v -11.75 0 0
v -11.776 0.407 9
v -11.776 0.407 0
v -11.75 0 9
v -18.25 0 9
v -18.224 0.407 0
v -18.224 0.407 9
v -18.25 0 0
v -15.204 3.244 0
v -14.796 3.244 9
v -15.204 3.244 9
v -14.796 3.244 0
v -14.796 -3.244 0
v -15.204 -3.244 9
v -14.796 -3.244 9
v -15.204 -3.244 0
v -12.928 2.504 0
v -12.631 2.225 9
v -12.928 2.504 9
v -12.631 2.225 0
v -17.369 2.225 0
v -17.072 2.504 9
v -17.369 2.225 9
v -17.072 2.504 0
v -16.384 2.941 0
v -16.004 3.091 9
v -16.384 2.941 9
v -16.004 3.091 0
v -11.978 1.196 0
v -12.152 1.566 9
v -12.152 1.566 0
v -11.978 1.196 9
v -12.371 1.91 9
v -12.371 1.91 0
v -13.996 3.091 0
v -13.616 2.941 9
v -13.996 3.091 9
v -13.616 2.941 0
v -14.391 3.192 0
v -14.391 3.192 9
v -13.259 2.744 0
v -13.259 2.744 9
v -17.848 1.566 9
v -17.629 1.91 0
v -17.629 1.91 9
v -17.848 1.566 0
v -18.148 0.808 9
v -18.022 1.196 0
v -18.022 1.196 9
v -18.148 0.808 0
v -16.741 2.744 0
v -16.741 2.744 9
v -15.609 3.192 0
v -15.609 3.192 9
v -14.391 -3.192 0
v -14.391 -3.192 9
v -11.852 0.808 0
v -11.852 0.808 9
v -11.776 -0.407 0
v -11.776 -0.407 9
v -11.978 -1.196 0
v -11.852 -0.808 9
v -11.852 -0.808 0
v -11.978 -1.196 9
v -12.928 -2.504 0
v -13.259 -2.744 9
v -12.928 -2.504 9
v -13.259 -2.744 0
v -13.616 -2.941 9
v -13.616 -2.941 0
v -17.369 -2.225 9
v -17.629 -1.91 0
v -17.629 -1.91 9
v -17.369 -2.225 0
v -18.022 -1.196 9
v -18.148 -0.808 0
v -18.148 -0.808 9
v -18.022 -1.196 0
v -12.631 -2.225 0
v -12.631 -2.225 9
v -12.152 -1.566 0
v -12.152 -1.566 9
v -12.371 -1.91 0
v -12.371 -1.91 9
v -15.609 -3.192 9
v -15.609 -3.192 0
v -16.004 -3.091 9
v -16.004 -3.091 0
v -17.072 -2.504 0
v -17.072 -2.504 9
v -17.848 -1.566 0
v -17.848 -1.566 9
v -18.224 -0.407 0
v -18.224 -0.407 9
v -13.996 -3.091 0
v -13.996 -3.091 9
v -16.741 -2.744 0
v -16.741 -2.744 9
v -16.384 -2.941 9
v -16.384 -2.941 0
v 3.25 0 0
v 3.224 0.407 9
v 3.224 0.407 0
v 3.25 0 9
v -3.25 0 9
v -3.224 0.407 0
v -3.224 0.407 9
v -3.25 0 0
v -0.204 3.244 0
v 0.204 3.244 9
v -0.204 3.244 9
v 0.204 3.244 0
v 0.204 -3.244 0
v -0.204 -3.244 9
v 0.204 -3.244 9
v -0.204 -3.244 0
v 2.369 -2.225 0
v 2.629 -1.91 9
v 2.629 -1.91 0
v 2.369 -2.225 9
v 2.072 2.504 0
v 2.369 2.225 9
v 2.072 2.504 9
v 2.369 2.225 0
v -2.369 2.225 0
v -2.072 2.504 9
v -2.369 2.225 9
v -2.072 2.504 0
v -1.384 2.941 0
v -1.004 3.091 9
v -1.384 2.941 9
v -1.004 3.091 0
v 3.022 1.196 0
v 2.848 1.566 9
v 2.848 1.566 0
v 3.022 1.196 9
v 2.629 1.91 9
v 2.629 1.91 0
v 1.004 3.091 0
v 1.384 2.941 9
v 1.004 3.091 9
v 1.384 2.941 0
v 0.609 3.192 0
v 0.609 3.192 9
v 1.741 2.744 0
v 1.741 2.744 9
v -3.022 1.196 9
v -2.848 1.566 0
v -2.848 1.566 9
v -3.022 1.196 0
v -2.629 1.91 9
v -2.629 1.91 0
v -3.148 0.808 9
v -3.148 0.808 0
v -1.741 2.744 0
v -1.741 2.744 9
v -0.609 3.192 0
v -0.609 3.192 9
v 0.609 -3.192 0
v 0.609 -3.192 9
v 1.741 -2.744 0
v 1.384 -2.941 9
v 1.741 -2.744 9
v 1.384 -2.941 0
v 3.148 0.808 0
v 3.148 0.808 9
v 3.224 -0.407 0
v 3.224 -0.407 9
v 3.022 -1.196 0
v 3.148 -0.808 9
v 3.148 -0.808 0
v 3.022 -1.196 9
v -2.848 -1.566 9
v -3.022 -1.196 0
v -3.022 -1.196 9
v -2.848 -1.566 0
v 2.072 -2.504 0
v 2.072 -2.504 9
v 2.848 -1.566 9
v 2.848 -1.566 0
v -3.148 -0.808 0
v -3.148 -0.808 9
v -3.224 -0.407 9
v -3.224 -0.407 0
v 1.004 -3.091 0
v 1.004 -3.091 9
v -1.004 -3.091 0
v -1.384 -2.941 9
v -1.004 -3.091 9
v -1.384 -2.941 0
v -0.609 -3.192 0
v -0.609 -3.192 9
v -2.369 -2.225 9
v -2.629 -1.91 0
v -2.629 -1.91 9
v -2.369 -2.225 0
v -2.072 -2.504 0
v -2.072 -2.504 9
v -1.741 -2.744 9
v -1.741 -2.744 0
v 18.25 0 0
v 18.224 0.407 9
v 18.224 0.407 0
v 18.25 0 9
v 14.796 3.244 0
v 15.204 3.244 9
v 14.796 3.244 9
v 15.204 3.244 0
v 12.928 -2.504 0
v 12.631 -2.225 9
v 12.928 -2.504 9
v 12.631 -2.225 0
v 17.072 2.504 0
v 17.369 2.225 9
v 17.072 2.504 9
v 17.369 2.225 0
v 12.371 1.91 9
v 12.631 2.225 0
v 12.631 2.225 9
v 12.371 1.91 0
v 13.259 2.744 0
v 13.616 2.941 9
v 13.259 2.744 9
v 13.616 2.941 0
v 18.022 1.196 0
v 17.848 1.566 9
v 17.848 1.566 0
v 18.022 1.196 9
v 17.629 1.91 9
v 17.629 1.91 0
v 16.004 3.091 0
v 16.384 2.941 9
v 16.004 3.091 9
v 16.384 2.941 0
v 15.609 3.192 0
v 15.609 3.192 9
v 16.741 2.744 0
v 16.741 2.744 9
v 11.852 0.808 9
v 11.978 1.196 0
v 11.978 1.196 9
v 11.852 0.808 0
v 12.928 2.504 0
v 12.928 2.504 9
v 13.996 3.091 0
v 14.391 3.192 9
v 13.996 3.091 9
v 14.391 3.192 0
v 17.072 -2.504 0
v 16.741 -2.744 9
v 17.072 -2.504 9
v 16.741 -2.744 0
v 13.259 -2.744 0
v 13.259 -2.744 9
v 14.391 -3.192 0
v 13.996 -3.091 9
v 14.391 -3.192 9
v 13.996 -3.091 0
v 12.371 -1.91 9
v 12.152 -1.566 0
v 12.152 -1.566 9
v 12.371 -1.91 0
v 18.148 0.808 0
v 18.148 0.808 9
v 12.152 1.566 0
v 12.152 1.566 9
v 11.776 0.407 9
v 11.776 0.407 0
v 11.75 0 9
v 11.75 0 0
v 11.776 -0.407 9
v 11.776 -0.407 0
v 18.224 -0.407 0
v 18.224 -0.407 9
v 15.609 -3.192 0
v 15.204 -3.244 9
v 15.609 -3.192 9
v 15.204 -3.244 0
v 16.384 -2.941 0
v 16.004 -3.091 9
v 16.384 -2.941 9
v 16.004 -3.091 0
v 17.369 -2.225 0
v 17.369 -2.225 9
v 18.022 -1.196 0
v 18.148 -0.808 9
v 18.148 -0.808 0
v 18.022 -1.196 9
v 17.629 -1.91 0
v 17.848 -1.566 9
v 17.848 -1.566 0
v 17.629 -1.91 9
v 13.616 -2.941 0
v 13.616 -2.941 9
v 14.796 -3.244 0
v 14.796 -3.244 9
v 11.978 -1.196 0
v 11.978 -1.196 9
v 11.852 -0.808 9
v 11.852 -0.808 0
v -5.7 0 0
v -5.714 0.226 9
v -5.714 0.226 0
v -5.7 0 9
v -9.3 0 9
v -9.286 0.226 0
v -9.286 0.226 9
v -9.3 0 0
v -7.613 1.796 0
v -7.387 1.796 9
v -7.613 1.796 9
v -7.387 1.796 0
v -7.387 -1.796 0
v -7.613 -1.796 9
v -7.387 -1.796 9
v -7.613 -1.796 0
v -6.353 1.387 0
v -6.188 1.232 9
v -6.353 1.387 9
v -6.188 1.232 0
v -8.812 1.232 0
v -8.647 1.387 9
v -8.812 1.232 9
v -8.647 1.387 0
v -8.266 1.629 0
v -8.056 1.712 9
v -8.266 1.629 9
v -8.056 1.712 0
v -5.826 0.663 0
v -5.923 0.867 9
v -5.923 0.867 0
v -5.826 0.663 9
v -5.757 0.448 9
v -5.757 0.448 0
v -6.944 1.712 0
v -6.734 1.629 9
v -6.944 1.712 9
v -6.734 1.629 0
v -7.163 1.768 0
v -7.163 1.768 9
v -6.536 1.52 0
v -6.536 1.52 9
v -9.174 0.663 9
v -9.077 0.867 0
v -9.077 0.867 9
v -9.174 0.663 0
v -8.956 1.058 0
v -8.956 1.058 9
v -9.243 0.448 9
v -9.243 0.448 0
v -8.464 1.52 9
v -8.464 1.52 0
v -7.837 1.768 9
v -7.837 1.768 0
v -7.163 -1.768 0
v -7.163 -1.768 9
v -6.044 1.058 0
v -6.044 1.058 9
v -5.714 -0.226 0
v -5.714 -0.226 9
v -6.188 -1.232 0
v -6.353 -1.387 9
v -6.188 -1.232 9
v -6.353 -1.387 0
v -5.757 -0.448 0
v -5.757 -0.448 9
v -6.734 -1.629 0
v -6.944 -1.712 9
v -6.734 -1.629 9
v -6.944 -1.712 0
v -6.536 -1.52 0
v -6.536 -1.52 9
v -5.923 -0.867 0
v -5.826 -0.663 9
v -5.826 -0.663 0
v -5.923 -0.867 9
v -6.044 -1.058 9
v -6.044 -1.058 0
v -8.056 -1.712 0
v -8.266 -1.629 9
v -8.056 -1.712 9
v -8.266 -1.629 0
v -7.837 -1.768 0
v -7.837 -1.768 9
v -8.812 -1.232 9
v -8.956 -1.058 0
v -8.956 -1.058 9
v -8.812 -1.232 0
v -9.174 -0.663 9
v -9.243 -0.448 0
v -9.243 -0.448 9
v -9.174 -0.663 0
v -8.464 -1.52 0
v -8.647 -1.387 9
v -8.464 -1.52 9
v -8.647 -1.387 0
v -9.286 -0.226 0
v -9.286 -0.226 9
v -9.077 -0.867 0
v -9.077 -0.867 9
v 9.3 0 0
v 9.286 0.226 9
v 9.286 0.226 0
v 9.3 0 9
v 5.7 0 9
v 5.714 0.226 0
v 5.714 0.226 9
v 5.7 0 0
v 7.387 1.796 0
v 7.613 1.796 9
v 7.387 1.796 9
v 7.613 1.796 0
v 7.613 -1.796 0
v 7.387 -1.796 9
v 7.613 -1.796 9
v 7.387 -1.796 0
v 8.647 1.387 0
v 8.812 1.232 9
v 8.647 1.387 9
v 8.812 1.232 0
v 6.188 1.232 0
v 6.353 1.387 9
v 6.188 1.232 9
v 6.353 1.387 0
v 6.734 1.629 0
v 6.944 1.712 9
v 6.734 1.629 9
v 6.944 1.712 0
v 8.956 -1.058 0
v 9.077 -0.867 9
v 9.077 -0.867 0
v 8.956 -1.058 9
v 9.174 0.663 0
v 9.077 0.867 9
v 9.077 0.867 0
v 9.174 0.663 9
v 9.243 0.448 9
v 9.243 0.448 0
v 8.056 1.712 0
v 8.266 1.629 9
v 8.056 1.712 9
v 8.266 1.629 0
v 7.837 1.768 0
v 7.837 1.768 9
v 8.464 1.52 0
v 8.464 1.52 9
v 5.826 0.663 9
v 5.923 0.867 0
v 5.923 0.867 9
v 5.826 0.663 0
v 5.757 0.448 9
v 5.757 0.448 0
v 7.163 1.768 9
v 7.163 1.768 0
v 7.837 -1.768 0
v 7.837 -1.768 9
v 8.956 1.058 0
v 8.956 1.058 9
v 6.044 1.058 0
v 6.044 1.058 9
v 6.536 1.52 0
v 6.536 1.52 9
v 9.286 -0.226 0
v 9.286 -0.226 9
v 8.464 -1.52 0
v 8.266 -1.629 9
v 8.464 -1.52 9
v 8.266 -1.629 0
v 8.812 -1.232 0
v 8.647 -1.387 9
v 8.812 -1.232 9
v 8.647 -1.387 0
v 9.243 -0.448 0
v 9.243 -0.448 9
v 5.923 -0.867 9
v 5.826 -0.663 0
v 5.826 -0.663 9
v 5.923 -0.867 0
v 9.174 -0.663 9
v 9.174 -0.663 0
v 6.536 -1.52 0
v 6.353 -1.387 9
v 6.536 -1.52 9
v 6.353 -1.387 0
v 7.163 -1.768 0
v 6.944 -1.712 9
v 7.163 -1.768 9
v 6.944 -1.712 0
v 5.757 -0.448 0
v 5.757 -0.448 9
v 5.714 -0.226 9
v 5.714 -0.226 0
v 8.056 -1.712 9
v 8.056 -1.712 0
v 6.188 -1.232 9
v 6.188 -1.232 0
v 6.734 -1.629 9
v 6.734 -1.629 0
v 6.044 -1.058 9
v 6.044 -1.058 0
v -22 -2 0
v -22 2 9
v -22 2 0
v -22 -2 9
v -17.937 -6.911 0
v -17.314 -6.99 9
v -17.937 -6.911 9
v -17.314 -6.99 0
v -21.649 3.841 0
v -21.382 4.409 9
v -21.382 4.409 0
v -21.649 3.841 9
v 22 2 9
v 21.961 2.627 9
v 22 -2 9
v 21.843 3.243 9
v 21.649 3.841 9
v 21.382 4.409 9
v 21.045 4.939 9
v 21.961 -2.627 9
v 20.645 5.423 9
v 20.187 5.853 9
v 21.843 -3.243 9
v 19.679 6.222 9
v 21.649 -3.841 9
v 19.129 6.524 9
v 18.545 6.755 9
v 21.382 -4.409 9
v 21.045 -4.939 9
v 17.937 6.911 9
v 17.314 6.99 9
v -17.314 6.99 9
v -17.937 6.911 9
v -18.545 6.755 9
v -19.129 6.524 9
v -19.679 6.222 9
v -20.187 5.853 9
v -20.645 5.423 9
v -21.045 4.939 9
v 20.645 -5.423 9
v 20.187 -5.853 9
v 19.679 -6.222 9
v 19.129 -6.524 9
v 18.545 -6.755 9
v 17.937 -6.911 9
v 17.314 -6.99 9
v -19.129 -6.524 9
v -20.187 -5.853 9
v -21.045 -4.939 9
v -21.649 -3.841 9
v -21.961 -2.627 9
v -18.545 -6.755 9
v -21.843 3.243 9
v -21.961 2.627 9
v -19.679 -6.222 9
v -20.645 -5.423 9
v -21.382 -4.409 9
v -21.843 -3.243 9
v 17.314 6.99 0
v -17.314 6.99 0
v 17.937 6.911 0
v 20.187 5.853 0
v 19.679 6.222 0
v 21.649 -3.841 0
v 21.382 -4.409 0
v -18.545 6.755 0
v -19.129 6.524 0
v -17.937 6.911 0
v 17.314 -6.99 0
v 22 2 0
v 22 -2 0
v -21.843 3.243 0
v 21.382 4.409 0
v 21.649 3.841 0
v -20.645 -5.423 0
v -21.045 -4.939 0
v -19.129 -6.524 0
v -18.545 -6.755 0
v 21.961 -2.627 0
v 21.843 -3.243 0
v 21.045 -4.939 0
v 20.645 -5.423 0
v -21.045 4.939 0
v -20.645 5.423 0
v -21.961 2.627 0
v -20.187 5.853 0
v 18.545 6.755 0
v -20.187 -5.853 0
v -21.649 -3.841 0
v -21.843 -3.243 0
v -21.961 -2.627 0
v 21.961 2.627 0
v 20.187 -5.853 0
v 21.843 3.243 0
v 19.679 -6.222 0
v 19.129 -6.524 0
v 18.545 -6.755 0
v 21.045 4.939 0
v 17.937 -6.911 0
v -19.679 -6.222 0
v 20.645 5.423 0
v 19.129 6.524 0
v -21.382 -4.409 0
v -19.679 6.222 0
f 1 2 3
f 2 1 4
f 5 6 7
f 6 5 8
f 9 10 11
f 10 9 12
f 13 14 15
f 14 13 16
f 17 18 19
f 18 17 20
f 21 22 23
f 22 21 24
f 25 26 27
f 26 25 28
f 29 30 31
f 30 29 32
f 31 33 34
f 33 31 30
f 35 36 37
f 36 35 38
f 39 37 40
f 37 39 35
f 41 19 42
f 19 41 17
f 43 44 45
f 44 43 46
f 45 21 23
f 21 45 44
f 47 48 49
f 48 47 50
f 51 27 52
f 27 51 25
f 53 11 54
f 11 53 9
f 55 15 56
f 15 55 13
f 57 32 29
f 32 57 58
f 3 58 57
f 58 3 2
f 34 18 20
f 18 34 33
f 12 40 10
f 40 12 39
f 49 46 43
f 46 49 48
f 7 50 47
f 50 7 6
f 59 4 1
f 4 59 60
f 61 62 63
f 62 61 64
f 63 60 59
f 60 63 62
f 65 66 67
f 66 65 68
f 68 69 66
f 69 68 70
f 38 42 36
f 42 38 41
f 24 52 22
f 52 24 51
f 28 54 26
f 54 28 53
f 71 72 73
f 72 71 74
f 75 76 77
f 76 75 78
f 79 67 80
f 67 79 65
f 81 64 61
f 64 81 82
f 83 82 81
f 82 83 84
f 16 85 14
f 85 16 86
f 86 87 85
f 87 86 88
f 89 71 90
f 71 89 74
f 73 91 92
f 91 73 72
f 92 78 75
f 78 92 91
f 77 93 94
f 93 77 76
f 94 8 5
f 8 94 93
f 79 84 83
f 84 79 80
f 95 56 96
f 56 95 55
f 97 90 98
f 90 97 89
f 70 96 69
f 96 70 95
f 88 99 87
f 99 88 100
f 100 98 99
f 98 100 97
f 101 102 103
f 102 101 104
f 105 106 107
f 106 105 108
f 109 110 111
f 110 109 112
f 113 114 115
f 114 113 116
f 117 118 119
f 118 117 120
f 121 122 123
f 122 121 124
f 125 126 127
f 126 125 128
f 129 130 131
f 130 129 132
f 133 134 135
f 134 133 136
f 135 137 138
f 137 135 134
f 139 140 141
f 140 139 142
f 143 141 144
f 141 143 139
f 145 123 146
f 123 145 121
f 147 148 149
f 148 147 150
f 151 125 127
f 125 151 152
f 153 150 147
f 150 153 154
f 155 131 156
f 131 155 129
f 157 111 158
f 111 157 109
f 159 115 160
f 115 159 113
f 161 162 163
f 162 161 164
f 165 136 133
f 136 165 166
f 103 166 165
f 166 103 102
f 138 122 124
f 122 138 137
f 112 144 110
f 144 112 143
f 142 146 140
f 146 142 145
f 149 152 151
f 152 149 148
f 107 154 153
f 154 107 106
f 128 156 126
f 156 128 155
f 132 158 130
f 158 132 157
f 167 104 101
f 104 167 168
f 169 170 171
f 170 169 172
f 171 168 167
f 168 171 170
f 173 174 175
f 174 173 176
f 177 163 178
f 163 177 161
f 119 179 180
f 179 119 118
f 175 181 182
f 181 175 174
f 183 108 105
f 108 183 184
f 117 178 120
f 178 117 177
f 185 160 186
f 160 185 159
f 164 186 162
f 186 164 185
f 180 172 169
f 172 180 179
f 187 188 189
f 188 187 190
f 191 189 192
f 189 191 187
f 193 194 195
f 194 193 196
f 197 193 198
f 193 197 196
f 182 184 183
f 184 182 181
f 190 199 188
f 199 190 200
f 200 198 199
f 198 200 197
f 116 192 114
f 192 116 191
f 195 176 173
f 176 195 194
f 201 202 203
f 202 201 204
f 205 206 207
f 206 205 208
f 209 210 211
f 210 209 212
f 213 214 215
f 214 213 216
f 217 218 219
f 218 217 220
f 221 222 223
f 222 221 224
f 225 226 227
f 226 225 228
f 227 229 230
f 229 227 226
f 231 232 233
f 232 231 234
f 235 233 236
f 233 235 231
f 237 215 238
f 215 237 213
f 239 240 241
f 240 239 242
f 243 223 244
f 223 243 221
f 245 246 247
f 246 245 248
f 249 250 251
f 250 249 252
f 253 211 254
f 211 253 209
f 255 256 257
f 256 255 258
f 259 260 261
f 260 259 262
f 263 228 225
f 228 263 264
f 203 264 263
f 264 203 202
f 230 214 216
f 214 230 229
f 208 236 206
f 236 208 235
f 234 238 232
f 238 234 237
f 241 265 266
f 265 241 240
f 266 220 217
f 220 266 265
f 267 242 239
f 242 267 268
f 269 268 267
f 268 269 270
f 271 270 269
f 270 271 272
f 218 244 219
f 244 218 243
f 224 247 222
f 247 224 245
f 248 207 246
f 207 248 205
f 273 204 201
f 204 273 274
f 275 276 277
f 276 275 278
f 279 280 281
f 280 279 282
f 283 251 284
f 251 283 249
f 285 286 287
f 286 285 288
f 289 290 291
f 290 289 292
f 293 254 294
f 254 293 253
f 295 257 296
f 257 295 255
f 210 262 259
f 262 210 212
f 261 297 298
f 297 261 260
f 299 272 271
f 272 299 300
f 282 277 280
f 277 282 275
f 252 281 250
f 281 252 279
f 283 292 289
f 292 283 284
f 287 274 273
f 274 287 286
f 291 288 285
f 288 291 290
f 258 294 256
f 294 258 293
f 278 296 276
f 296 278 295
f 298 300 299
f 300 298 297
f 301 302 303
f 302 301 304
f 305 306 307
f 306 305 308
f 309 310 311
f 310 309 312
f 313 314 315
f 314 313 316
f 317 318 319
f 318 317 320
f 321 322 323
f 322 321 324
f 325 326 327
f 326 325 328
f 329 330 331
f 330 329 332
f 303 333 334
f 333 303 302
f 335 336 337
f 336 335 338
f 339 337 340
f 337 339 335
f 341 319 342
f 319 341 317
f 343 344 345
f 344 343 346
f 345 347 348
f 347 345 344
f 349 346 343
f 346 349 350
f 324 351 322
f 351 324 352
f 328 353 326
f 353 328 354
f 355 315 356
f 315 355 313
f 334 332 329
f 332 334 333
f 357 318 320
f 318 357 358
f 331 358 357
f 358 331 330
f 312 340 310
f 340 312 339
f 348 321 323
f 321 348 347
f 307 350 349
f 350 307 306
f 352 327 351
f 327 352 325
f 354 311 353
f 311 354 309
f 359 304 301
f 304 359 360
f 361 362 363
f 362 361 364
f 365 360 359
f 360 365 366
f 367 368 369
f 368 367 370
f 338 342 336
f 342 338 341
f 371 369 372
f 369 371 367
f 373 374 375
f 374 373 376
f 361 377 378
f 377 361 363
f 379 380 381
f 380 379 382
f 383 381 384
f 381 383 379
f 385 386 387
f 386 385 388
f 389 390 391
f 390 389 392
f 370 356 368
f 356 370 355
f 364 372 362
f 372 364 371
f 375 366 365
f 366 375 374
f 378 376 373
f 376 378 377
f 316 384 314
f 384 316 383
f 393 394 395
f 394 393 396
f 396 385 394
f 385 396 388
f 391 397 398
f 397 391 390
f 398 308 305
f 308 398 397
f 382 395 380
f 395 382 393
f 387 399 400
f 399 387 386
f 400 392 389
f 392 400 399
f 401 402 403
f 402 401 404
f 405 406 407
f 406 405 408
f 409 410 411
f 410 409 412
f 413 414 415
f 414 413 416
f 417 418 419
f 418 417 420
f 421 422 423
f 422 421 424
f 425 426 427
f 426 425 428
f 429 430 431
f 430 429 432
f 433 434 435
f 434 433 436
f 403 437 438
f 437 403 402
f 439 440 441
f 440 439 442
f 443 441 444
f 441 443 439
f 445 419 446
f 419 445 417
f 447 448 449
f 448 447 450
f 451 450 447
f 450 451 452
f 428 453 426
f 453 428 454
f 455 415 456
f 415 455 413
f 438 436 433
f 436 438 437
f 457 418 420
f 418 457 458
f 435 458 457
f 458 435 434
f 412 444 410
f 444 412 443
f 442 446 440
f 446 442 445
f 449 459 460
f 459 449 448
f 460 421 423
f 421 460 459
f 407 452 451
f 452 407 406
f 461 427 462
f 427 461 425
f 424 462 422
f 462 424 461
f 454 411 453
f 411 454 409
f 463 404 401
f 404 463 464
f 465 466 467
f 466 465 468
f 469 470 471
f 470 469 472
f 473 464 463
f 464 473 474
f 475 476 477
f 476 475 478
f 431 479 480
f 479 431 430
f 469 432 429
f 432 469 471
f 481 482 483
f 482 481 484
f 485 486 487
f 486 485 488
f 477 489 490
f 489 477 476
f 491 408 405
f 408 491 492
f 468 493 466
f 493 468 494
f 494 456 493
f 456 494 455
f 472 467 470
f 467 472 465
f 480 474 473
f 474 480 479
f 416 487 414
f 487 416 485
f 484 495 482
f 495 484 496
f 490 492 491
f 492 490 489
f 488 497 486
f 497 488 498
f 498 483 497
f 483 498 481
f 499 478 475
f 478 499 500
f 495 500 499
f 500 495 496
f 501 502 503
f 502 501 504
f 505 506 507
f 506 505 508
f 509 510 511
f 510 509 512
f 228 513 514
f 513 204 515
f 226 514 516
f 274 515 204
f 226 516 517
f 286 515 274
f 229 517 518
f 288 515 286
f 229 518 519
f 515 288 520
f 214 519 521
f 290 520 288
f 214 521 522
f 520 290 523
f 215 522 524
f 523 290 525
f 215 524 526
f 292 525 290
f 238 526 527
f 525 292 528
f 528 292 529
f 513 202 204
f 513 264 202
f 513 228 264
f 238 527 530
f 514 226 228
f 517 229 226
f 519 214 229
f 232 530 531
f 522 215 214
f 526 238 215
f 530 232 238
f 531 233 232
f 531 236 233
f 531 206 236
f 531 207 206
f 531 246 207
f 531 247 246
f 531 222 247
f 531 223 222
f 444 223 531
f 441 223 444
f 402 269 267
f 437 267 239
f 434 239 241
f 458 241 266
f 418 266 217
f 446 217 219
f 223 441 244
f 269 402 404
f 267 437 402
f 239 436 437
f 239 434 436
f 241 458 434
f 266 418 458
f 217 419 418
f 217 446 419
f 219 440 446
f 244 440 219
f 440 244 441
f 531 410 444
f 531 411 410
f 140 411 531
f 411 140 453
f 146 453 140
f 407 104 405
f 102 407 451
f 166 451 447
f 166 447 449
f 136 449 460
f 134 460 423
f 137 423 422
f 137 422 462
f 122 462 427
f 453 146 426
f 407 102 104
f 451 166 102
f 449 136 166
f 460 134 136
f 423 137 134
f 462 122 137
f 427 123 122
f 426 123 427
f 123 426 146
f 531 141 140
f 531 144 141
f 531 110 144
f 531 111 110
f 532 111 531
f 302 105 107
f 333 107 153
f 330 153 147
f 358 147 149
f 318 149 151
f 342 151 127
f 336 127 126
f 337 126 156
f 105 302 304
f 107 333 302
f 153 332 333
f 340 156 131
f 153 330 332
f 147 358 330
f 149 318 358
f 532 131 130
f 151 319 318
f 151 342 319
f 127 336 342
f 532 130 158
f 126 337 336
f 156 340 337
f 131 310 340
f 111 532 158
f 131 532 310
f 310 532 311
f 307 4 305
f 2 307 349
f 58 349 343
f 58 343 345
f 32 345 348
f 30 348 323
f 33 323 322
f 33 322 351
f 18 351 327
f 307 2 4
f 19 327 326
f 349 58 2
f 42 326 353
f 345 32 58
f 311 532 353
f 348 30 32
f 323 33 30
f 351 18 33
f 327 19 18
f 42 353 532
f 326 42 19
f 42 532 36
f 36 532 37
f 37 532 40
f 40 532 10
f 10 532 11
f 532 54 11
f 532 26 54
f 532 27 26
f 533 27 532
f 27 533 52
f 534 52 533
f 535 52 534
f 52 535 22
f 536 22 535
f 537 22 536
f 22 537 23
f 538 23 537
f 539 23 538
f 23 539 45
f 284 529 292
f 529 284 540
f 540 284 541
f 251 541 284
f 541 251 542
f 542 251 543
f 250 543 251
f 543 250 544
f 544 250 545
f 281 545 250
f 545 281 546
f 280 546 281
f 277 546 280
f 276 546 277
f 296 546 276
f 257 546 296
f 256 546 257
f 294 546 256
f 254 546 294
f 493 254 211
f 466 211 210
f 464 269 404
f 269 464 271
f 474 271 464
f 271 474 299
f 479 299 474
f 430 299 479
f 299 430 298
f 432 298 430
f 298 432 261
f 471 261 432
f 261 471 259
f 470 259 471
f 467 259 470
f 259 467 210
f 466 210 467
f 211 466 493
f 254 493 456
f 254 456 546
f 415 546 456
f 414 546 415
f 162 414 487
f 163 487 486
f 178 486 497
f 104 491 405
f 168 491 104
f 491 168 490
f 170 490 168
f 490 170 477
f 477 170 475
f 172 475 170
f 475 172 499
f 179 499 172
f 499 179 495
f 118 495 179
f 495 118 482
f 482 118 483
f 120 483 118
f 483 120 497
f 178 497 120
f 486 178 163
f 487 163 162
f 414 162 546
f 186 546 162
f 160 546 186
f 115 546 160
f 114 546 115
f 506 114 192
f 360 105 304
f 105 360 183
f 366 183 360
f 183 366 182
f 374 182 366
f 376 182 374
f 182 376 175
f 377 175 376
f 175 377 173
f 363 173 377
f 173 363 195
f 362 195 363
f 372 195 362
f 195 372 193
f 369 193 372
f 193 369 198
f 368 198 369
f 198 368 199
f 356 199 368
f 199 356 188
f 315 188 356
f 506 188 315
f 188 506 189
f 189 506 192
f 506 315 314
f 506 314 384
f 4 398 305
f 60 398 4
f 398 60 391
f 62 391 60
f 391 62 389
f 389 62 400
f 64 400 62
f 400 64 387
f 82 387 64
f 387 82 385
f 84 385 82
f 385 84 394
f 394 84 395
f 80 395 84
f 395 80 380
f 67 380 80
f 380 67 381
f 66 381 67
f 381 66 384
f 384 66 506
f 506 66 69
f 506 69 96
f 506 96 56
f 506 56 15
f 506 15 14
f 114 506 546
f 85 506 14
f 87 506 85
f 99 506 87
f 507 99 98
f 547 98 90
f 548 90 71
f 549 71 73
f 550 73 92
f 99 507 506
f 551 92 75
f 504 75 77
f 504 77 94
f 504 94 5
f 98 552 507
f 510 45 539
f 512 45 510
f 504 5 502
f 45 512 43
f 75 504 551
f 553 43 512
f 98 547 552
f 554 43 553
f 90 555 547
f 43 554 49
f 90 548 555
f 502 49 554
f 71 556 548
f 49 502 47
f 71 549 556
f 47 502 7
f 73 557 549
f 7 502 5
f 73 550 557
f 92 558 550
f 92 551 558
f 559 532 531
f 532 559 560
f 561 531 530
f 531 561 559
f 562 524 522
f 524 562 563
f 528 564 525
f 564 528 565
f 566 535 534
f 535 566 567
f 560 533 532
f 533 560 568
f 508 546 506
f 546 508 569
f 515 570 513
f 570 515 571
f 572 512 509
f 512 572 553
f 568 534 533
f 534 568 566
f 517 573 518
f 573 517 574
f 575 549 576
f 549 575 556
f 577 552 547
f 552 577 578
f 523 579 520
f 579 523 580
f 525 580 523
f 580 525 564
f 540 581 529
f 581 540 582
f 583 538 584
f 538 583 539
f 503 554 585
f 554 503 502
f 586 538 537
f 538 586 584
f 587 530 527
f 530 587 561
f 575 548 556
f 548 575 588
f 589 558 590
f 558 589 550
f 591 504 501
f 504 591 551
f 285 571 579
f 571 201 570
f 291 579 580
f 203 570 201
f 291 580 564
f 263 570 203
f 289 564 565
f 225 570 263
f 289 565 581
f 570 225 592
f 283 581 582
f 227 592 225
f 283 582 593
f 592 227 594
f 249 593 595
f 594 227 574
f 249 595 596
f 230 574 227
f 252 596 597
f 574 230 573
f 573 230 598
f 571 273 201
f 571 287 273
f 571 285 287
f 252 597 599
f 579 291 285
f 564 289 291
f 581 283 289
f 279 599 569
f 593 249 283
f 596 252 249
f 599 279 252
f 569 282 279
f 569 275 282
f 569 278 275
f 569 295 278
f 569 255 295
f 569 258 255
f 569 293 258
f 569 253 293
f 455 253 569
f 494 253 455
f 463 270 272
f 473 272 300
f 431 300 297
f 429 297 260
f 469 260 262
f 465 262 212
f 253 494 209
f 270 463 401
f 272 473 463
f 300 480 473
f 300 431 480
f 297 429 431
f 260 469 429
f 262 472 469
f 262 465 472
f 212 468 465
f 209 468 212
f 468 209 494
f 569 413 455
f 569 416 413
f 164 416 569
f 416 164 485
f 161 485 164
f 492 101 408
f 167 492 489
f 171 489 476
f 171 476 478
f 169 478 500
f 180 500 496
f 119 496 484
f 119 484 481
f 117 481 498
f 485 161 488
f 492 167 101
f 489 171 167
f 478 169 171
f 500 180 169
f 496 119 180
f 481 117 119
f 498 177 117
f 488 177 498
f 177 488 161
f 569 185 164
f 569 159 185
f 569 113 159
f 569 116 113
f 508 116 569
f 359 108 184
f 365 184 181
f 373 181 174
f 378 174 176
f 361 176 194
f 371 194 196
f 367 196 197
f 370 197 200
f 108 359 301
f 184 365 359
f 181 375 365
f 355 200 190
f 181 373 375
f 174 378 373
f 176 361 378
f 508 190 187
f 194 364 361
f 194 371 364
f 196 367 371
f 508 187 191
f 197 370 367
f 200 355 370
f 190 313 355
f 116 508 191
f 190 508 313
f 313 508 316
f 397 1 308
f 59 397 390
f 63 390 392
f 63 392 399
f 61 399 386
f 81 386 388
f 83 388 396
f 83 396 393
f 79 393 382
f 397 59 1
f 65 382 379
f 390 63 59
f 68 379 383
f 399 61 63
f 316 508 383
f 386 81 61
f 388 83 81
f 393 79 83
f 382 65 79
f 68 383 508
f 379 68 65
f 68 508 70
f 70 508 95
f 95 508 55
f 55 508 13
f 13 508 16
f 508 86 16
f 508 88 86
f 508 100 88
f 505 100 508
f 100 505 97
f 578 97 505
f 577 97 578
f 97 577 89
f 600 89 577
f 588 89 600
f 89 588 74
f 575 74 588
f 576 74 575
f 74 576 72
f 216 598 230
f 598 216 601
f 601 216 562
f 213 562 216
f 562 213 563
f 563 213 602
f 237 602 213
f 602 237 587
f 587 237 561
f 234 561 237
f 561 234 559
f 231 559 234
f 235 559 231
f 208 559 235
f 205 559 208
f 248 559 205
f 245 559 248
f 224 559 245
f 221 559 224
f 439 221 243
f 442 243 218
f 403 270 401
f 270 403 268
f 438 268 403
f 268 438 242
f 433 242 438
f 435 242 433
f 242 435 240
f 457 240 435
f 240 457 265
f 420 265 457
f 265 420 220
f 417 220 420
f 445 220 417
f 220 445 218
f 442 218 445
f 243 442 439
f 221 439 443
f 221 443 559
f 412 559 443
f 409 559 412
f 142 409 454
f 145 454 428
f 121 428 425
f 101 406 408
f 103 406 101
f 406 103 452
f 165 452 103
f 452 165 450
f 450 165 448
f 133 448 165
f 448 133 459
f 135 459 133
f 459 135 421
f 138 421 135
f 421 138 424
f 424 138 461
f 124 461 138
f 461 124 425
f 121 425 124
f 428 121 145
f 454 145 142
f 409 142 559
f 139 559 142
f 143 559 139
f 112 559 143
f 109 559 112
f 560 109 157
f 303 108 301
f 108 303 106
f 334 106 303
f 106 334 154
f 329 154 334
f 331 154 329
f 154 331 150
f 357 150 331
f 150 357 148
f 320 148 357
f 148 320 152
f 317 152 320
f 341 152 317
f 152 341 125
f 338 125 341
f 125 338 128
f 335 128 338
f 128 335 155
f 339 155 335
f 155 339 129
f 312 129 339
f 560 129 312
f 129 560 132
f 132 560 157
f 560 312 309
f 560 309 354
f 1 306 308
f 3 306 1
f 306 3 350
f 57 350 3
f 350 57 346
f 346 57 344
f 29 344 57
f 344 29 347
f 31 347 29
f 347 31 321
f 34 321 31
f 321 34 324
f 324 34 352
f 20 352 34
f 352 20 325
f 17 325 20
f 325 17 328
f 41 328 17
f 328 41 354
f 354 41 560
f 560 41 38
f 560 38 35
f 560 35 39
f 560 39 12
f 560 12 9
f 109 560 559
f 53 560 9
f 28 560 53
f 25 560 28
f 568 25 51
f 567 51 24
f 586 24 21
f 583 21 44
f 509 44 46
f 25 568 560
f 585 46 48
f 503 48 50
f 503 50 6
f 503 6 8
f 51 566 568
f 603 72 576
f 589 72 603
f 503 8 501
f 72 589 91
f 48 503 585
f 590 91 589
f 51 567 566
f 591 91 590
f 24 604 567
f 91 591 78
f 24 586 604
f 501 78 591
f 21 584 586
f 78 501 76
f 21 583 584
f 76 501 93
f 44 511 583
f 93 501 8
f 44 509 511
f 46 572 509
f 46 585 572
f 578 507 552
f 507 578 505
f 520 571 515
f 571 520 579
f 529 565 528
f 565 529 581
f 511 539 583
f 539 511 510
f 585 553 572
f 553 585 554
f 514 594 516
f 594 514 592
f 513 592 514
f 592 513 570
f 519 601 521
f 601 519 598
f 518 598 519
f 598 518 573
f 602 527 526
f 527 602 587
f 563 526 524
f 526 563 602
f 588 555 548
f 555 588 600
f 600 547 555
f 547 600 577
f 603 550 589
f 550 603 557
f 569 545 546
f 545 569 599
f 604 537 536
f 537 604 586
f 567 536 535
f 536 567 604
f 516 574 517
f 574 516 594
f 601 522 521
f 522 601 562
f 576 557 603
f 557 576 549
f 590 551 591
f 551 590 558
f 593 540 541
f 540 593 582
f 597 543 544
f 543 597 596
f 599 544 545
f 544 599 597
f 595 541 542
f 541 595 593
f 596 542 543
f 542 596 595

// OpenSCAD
$fn = 50;


difference() {
	union() {
		translate(v = [0, 0, 0]) {
			rotate(a = [0, 0, 0]) {
				hull() {
					translate(v = [-17.0000000000, 2.0000000000, 0]) {
						rotate(a = [0, 0, 0]) {
							translate(v = [0, 0, 0]) {
								rotate(a = [0, 0, 0]) {
									cylinder(h = 9, r = 5);
								}
							}
						}
					}
					translate(v = [17.0000000000, 2.0000000000, 0]) {
						rotate(a = [0, 0, 0]) {
							translate(v = [0, 0, 0]) {
								rotate(a = [0, 0, 0]) {
									cylinder(h = 9, r = 5);
								}
							}
						}
					}
					translate(v = [-17.0000000000, -2.0000000000, 0]) {
						rotate(a = [0, 0, 0]) {
							translate(v = [0, 0, 0]) {
								rotate(a = [0, 0, 0]) {
									cylinder(h = 9, r = 5);
								}
							}
						}
					}
					translate(v = [17.0000000000, -2.0000000000, 0]) {
						rotate(a = [0, 0, 0]) {
							translate(v = [0, 0, 0]) {
								rotate(a = [0, 0, 0]) {
									cylinder(h = 9, r = 5);
								}
							}
						}
					}
				}
			}
		}
	}
	union() {
		translate(v = [-15.0000000000, 0.0000000000, 0]) {
			rotate(a = [0, 0, 0]) {
				translate(v = [0, 0, -50]) {
					rotate(a = [0, 0, 0]) {
						cylinder(h = 100, r = 3.2500000000);
					}
				}
			}
		}
		translate(v = [0.0000000000, 0.0000000000, 0]) {
			rotate(a = [0, 0, 0]) {
				translate(v = [0, 0, -50]) {
					rotate(a = [0, 0, 0]) {
						cylinder(h = 100, r = 3.2500000000);
					}
				}
			}
		}
		translate(v = [15.0000000000, 0.0000000000, 0]) {
			rotate(a = [0, 0, 0]) {
				translate(v = [0, 0, -50]) {
					rotate(a = [0, 0, 0]) {
						cylinder(h = 100, r = 3.2500000000);
					}
				}
			}
		}
		translate(v = [-15.0000000000, 0.0000000000, 0]) {
			rotate(a = [0, 0, 0]) {
				translate(v = [0, 0, -50]) {
					rotate(a = [0, 0, 0]) {
						cylinder(h = 100, r = 1.8000000000);
					}
				}
			}
		}
		translate(v = [-7.5000000000, 0.0000000000, 0]) {
			rotate(a = [0, 0, 0]) {
				translate(v = [0, 0, -50]) {
					rotate(a = [0, 0, 0]) {
						cylinder(h = 100, r = 1.8000000000);
					}
				}
			}
		}
		translate(v = [0.0000000000, 0.0000000000, 0]) {
			rotate(a = [0, 0, 0]) {
				translate(v = [0, 0, -50]) {
					rotate(a = [0, 0, 0]) {
						cylinder(h = 100, r = 1.8000000000);
					}
				}
			}
		}
		translate(v = [7.5000000000, 0.0000000000, 0]) {
			rotate(a = [0, 0, 0]) {
				translate(v = [0, 0, -50]) {
					rotate(a = [0, 0, 0]) {
						cylinder(h = 100, r = 1.8000000000);
					}
				}
			}
		}
		translate(v = [15.0000000000, 0.0000000000, 0]) {
			rotate(a = [0, 0, 0]) {
				translate(v = [0, 0, -50]) {
					rotate(a = [0, 0, 0]) {
						cylinder(h = 100, r = 1.8000000000);
					}
				}
			}
		}
	}
}
